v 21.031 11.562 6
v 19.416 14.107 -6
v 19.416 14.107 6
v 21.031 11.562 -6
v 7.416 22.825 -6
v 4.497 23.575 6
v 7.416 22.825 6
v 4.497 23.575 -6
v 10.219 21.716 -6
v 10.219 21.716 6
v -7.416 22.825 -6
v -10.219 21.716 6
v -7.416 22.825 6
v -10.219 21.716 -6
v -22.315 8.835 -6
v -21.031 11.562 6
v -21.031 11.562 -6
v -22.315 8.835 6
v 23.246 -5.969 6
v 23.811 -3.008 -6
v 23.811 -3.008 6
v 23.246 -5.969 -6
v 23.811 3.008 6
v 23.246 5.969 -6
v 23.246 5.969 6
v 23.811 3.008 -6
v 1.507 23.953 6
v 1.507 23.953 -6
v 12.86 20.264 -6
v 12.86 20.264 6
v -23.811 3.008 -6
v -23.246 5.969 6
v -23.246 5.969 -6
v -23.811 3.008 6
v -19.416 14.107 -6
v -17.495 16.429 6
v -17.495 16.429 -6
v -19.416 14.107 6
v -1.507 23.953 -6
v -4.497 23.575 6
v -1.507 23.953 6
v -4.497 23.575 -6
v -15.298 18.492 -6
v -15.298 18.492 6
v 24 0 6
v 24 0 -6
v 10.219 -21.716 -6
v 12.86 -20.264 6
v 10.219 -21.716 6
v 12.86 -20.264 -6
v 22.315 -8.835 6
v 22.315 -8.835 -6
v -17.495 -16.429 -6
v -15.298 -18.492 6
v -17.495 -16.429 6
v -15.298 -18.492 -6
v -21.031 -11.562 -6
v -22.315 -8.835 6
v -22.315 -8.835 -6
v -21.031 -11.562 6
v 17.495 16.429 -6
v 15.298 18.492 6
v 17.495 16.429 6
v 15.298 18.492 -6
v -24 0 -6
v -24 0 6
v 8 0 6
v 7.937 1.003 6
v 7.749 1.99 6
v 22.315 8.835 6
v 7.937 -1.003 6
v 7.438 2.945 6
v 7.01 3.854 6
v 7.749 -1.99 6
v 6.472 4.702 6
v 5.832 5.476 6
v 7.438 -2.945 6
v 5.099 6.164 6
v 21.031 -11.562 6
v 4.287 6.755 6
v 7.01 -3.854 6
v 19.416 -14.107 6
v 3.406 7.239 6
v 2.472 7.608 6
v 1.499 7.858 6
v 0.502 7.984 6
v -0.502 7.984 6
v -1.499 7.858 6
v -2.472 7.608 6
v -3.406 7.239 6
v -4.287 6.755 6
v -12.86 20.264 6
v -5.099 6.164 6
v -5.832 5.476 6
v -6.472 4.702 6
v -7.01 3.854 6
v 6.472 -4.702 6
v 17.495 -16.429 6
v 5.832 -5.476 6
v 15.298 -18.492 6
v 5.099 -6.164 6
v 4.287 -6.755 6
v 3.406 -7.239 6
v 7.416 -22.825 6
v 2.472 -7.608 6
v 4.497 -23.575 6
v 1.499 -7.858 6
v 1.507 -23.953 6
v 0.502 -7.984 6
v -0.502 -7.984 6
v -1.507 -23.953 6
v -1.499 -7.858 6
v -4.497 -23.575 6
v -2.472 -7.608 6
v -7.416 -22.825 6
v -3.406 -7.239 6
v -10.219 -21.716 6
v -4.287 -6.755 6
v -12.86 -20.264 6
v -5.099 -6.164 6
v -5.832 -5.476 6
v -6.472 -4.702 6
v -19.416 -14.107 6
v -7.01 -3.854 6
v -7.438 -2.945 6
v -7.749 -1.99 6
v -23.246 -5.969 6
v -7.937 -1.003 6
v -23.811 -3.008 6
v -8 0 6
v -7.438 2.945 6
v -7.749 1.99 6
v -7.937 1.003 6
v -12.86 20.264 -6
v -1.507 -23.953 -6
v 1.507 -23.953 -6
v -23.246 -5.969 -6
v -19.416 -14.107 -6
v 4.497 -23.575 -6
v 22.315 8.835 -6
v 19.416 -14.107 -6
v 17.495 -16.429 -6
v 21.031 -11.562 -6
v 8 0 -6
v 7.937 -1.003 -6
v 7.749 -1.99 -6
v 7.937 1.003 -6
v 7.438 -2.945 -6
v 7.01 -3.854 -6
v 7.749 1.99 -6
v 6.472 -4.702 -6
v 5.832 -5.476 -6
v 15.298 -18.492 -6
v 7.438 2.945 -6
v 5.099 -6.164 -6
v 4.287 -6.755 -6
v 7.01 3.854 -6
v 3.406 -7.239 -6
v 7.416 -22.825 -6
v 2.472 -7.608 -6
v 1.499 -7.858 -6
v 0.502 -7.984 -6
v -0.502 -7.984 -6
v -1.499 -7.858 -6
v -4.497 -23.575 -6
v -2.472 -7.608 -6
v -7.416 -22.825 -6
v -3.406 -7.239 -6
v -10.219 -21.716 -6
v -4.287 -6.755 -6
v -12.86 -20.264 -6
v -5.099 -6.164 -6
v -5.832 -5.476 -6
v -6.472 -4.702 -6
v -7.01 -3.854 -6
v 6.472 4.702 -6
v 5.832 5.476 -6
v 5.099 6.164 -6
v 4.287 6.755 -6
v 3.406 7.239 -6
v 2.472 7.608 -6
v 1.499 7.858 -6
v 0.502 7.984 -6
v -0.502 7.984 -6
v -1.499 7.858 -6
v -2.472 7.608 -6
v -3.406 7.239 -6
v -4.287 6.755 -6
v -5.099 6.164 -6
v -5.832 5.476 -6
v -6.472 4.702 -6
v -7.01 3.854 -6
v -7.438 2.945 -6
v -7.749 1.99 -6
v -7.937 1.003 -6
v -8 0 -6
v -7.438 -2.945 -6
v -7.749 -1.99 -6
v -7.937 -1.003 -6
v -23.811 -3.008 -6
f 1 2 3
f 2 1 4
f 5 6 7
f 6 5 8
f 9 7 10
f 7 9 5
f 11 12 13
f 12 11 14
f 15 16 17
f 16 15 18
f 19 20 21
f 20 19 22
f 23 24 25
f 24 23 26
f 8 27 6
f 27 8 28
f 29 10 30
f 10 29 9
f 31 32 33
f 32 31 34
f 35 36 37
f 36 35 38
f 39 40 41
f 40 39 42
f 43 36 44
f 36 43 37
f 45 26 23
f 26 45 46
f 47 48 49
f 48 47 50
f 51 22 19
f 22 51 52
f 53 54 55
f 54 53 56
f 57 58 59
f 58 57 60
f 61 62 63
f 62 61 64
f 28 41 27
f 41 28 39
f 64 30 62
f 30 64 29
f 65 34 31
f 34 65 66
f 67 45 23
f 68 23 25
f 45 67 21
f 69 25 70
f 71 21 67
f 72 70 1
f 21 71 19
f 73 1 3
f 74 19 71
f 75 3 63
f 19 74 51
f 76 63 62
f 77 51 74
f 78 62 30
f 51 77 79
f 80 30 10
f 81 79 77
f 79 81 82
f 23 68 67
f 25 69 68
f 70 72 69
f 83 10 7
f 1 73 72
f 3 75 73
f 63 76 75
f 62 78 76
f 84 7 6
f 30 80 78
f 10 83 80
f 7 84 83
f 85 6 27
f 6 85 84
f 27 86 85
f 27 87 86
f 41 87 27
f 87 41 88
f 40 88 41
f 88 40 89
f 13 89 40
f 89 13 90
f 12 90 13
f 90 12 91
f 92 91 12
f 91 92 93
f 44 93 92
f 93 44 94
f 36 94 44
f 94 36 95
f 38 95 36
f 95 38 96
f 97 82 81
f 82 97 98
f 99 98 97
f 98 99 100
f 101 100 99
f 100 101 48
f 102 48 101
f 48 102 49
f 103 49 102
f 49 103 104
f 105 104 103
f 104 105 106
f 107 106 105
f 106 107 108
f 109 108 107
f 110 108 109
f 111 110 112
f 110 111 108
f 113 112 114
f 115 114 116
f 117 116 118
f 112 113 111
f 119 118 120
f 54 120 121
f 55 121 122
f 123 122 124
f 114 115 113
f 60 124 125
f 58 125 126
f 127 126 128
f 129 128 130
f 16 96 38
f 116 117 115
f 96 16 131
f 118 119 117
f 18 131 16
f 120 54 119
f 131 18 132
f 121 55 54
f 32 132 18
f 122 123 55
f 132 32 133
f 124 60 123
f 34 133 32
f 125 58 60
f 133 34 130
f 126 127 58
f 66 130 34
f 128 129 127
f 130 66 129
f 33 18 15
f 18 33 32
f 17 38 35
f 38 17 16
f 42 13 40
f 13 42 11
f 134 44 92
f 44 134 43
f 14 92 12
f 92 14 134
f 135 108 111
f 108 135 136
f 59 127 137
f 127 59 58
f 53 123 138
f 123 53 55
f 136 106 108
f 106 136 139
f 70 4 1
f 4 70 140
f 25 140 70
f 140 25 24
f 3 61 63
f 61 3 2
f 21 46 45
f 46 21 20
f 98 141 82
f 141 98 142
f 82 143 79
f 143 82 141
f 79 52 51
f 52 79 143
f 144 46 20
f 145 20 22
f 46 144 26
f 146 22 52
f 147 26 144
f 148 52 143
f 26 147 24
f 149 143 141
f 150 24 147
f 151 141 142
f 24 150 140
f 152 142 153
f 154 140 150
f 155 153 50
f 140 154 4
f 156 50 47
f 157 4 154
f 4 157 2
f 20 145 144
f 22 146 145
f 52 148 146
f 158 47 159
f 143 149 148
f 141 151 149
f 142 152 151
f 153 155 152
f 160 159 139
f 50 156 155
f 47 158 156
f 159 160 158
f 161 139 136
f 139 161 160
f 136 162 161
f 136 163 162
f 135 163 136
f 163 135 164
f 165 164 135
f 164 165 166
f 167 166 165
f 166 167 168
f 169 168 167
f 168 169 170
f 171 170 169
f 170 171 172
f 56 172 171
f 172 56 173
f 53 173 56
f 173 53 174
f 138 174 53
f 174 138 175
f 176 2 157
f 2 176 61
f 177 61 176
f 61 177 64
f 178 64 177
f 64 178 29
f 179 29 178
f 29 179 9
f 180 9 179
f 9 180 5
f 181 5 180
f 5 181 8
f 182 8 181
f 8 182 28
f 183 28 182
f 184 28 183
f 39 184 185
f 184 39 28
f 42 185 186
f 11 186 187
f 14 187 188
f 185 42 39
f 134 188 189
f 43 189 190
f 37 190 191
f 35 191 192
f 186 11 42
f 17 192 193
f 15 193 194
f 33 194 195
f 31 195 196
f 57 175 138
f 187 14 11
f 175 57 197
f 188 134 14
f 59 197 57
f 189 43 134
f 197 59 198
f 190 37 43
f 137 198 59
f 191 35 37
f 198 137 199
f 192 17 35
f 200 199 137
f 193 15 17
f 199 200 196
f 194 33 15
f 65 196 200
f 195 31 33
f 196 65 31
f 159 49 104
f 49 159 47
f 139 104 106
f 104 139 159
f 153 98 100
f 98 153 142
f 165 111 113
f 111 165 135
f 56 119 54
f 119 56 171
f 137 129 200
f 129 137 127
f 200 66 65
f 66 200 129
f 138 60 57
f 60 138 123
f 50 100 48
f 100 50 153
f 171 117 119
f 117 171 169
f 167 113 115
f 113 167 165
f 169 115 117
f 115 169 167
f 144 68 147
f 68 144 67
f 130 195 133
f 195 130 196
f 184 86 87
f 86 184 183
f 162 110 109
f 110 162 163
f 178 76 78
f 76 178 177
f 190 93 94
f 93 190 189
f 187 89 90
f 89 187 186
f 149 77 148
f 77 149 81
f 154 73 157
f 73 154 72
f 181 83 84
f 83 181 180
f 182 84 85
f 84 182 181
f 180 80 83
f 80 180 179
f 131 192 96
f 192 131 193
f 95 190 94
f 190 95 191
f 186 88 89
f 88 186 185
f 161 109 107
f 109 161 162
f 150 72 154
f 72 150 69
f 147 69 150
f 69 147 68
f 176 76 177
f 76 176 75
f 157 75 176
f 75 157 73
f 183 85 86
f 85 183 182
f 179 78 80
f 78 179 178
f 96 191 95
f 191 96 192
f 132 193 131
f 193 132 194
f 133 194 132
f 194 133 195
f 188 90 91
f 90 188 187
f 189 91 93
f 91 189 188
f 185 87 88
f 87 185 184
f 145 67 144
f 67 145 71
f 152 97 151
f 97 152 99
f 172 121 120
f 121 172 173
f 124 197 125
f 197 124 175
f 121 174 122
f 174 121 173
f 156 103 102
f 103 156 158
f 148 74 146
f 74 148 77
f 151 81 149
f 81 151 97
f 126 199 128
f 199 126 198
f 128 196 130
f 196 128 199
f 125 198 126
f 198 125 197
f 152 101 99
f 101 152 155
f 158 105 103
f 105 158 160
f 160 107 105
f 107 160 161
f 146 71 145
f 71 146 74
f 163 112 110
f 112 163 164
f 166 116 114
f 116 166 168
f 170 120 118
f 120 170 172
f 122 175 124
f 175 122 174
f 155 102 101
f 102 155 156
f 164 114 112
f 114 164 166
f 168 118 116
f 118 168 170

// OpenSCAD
$fn = 50;


difference() {
	union() {
		translate(v = [0, 0, -6.0000000000]) {
			cylinder(h = 12, r = 24.0000000000);
		}
	}
	union() {
		translate(v = [0, 0, -100.0000000000]) {
			cylinder(h = 200, r = 8);
		}
	}
}
